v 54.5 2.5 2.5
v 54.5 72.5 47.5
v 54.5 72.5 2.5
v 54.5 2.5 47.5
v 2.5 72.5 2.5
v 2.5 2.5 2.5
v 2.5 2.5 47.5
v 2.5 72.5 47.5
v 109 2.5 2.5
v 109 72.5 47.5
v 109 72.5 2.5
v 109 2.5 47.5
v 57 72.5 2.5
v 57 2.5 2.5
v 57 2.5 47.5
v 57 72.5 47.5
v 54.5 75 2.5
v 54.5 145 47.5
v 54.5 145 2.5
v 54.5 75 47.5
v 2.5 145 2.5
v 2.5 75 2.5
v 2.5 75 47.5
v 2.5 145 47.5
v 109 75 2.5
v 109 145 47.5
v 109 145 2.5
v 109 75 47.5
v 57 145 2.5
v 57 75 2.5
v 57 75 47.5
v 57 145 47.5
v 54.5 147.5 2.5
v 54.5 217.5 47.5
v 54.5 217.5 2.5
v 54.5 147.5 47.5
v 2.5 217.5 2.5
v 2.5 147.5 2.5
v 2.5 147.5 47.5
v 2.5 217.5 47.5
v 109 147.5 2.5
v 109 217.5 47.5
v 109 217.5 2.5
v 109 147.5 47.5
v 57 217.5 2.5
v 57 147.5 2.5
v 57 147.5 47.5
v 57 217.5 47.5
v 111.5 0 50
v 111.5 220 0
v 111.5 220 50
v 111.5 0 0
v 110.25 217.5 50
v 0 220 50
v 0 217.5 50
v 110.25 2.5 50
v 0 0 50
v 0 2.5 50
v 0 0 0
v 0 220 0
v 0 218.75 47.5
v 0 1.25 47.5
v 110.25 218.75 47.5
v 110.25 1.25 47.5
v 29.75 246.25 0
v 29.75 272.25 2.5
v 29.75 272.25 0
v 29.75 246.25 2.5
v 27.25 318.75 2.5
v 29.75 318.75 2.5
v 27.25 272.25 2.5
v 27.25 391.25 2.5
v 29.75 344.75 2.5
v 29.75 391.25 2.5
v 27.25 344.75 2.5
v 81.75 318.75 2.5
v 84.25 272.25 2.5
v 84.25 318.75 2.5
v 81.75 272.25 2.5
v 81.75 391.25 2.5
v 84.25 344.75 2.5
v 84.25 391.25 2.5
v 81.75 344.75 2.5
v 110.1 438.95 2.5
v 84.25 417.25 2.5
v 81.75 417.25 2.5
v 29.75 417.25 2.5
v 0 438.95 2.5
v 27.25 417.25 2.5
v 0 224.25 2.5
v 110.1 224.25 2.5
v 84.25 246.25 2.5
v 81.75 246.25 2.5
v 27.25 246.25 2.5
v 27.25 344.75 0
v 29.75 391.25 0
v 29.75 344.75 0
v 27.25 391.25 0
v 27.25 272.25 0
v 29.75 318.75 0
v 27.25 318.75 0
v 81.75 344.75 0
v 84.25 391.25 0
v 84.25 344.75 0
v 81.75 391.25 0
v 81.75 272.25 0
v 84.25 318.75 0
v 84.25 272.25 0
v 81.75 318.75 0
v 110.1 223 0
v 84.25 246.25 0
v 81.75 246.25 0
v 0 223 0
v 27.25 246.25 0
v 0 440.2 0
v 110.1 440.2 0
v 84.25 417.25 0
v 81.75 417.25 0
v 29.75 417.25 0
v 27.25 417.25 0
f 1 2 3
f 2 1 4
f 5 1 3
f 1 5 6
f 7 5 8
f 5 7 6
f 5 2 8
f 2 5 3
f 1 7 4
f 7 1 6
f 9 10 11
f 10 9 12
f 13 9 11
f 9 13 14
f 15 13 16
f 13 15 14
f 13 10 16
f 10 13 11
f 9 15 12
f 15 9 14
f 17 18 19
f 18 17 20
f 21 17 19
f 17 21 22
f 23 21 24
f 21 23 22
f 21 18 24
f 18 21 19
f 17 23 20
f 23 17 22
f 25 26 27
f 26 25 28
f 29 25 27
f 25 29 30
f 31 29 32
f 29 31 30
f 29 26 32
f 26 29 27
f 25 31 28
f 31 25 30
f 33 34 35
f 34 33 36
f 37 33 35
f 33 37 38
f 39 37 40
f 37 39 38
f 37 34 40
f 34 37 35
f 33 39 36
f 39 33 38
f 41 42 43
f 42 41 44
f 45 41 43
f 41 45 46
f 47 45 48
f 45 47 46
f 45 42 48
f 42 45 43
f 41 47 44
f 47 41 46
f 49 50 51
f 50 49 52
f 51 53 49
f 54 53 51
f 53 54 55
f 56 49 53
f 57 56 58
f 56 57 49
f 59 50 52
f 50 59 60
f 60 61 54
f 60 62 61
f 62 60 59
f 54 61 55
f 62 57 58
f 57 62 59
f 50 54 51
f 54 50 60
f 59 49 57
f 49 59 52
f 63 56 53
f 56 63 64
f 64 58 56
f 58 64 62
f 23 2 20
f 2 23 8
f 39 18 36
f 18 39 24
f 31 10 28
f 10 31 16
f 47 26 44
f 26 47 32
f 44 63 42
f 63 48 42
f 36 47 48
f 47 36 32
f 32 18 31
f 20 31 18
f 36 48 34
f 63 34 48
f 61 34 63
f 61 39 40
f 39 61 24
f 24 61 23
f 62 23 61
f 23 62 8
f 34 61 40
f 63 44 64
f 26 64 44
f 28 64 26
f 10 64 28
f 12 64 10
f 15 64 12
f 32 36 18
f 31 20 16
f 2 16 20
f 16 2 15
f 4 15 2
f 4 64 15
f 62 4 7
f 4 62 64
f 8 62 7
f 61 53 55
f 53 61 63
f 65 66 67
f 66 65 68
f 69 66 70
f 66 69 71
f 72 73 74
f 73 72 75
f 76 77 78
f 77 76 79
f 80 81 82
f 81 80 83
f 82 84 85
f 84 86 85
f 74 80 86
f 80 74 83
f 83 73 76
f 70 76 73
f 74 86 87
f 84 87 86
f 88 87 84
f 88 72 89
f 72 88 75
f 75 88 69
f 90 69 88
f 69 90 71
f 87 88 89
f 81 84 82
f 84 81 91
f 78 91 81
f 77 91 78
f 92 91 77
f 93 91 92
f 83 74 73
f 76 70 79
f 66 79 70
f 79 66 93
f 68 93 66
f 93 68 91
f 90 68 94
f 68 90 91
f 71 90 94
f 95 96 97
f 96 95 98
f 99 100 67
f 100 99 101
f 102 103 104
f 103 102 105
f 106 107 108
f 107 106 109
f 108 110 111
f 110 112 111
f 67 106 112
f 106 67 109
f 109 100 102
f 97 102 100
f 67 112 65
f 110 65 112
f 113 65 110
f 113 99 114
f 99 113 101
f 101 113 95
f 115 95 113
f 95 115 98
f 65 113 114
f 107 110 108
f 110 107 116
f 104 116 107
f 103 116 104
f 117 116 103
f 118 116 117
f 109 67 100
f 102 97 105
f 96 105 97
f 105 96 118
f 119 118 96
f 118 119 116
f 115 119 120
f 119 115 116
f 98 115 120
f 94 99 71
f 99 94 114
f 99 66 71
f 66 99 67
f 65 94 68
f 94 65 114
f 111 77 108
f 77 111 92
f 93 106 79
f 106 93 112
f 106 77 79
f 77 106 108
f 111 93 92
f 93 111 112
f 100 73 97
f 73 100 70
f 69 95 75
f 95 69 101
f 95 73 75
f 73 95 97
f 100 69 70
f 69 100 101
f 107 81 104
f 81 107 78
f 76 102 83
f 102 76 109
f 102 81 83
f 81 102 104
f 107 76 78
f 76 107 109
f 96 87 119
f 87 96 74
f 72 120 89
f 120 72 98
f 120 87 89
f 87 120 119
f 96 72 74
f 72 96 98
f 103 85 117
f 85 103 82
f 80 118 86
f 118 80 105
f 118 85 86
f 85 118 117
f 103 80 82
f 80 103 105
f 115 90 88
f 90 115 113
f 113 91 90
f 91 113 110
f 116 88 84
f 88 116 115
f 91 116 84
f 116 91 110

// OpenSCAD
// GENERAL SETTINGS
compx = 52;	// Size of compartments, X
compy = 70;	// Size of compartments, Y
wall = 2.5;		// Width of wall
nox = 2;		// Number of compartments, X
noy = 3;		// Number of compartments, Y
deep = 45;		// Depth of compartments
tolerance=.15;	// Tolerance around lid.  If it's too tight, increase this. 
				// If it's too loose, decrease it.

// WHAT TO RENDER
showbox=true;	// Whether or not to render the box
showlid=true;	// Whether or not to render the lid


// LID SETTINGS
lidtype=1;	// 0=Flat lid.  Use "1" for lid that slides off in the x direction
includethumbhole=false;
includecoinslot=true;
coinx=2.5;	// US coinage (penny, nickel, quarter dime) in X direction
coiny=26;	// swap values for slot in Y direction
ztolerance=0;
				// Z tolerance can be tweaked separately, to make the top of the sliding lid
				// be flush with the top of the box itself.  Default is zero.  Warning: this also
				// adds wiggle room to the lid, so !
lidoffset=3;		// This is how far away from the box to print the lid
lidheight=16;		// Height of lid (duh) MUST be greater than wall width for a type=0 lid to work.



totalheight = deep + (lidtype*wall);
thumbrad = min(20,noy*(compy+wall)/3);

if (showbox) {
difference() {
	cube ( size = [nox * (compx + wall) + wall, noy * (compy + wall) + wall, (totalheight + wall)], center = false);


	for ( ybox = [ 0 : noy - 1])
		{
             for( xbox = [ 0 : nox - 1])
			{
			translate([ xbox * ( compx + wall ) + wall, ybox * ( compy + wall ) + wall, wall])
			cube ( size = [ compx, compy, totalheight+1 ]);
			}
		}
	if (lidtype==1) {
			translate ([0,wall/2,deep+wall]) 
			polyhedron ( points = [   
							[0,0,0], 
							[0,noy*(compy+wall),0], 
							[nox*(compx+wall)+wall/2,0,0], 
							[nox*(compx+wall)+wall/2,noy*(compy+wall),0],
							[0,wall/2,wall], 
							[0,noy*(compy+wall)-wall/2,wall], 
							[nox*(compx+wall)+wall/2,wall/2,wall], 
							[nox*(compx+wall)+wall/2,noy*(compy+wall)-wall/2,wall]
							],
						triangles = [ 
							[0,2,1], [1,2,3], [4,5,6], [5,7,6]	,		// top and bottom
							[0,4,2], [4,6,2], [5,3,7], [5,1,3]	,		// angled sides
							[0,1,4], [1,5,4], [2,6,3], [3,6,7]			// trapezoidal ends
							]);
			translate ([0,wall/2,deep+wall-ztolerance])
			cube (size=[nox*(compx+wall)+wall/2,noy*(compy+wall),ztolerance],center=false);
			}

	}
}

if (showlid) {
translate ([0,noy*(compy+wall)+wall+lidoffset,0])
difference () { union () {	// for including coin slot
	if (lidtype==1) { 
		difference () {
		polyhedron ( points = [   
						[0,0,0], 
						[0,noy*(compy+wall)-2*tolerance,0], 
						[nox*(compx+wall)-tolerance+wall/2,0,0], 
						[nox*(compx+wall)-tolerance+wall/2,noy*(compy+wall)-2*tolerance,0],
						[0,wall/2,wall], 
						[0,noy*(compy+wall)-wall/2-2*tolerance,wall], 
						[nox*(compx+wall)-tolerance+wall/2,wall/2,wall], 
						[nox*(compx+wall)-tolerance+wall/2,noy*(compy+wall)-wall/2-2*tolerance,wall]
						],
					triangles = [ 
						[0,2,1], [1,2,3], [4,5,6], [5,7,6]	,		// top and bottom
						[0,4,2], [4,6,2], [5,3,7], [5,1,3]	,		// angled sides
						[0,1,4], [1,5,4], [2,6,3], [3,6,7]			// trapezoidal ends
						]);
		// Thumb hole
		if (includethumbhole==true) {
			intersection () {
			translate ([min(8,nox*(compx+wall)/8),(noy*(compy+wall))/2,thumbrad+wall/2]) sphere (r=thumbrad, center=true, $fn=60);
			translate ([min(8,nox*(compx+wall)/8),0,0]) cube (size=[20,(noy*(compy+wall)),20], center=false);
		}
	}

		}
	} else {

	difference() {
	cube ( size = [nox * (compx + wall) + 3 * wall + 2* tolerance, noy * (compy + wall) + 3 * wall + 2*tolerance, lidheight], center = false);

	translate ([wall,wall,wall])
	cube ( size = [nox * (compx + wall) +wall+tolerance, noy * (compy + wall) + wall + tolerance, lidheight+1], center = false);
	}
} // if lidtype
} // union
if (includecoinslot==true) {
	for ( yslot = [ 0 : noy - 1])
		{
             for( xslot = [ 0 : nox - 1])
			{
			translate([ xslot * ( compx + wall ) + (2-lidtype)*wall + (compx-coinx)/2, yslot * ( compy + wall ) + wall*(2-3*lidtype/2) + (compy-coiny)/2, 0])
			cube ( size = [ coinx, coiny, wall ]);
			}
		}
	}
} //difference
} // if showlid
